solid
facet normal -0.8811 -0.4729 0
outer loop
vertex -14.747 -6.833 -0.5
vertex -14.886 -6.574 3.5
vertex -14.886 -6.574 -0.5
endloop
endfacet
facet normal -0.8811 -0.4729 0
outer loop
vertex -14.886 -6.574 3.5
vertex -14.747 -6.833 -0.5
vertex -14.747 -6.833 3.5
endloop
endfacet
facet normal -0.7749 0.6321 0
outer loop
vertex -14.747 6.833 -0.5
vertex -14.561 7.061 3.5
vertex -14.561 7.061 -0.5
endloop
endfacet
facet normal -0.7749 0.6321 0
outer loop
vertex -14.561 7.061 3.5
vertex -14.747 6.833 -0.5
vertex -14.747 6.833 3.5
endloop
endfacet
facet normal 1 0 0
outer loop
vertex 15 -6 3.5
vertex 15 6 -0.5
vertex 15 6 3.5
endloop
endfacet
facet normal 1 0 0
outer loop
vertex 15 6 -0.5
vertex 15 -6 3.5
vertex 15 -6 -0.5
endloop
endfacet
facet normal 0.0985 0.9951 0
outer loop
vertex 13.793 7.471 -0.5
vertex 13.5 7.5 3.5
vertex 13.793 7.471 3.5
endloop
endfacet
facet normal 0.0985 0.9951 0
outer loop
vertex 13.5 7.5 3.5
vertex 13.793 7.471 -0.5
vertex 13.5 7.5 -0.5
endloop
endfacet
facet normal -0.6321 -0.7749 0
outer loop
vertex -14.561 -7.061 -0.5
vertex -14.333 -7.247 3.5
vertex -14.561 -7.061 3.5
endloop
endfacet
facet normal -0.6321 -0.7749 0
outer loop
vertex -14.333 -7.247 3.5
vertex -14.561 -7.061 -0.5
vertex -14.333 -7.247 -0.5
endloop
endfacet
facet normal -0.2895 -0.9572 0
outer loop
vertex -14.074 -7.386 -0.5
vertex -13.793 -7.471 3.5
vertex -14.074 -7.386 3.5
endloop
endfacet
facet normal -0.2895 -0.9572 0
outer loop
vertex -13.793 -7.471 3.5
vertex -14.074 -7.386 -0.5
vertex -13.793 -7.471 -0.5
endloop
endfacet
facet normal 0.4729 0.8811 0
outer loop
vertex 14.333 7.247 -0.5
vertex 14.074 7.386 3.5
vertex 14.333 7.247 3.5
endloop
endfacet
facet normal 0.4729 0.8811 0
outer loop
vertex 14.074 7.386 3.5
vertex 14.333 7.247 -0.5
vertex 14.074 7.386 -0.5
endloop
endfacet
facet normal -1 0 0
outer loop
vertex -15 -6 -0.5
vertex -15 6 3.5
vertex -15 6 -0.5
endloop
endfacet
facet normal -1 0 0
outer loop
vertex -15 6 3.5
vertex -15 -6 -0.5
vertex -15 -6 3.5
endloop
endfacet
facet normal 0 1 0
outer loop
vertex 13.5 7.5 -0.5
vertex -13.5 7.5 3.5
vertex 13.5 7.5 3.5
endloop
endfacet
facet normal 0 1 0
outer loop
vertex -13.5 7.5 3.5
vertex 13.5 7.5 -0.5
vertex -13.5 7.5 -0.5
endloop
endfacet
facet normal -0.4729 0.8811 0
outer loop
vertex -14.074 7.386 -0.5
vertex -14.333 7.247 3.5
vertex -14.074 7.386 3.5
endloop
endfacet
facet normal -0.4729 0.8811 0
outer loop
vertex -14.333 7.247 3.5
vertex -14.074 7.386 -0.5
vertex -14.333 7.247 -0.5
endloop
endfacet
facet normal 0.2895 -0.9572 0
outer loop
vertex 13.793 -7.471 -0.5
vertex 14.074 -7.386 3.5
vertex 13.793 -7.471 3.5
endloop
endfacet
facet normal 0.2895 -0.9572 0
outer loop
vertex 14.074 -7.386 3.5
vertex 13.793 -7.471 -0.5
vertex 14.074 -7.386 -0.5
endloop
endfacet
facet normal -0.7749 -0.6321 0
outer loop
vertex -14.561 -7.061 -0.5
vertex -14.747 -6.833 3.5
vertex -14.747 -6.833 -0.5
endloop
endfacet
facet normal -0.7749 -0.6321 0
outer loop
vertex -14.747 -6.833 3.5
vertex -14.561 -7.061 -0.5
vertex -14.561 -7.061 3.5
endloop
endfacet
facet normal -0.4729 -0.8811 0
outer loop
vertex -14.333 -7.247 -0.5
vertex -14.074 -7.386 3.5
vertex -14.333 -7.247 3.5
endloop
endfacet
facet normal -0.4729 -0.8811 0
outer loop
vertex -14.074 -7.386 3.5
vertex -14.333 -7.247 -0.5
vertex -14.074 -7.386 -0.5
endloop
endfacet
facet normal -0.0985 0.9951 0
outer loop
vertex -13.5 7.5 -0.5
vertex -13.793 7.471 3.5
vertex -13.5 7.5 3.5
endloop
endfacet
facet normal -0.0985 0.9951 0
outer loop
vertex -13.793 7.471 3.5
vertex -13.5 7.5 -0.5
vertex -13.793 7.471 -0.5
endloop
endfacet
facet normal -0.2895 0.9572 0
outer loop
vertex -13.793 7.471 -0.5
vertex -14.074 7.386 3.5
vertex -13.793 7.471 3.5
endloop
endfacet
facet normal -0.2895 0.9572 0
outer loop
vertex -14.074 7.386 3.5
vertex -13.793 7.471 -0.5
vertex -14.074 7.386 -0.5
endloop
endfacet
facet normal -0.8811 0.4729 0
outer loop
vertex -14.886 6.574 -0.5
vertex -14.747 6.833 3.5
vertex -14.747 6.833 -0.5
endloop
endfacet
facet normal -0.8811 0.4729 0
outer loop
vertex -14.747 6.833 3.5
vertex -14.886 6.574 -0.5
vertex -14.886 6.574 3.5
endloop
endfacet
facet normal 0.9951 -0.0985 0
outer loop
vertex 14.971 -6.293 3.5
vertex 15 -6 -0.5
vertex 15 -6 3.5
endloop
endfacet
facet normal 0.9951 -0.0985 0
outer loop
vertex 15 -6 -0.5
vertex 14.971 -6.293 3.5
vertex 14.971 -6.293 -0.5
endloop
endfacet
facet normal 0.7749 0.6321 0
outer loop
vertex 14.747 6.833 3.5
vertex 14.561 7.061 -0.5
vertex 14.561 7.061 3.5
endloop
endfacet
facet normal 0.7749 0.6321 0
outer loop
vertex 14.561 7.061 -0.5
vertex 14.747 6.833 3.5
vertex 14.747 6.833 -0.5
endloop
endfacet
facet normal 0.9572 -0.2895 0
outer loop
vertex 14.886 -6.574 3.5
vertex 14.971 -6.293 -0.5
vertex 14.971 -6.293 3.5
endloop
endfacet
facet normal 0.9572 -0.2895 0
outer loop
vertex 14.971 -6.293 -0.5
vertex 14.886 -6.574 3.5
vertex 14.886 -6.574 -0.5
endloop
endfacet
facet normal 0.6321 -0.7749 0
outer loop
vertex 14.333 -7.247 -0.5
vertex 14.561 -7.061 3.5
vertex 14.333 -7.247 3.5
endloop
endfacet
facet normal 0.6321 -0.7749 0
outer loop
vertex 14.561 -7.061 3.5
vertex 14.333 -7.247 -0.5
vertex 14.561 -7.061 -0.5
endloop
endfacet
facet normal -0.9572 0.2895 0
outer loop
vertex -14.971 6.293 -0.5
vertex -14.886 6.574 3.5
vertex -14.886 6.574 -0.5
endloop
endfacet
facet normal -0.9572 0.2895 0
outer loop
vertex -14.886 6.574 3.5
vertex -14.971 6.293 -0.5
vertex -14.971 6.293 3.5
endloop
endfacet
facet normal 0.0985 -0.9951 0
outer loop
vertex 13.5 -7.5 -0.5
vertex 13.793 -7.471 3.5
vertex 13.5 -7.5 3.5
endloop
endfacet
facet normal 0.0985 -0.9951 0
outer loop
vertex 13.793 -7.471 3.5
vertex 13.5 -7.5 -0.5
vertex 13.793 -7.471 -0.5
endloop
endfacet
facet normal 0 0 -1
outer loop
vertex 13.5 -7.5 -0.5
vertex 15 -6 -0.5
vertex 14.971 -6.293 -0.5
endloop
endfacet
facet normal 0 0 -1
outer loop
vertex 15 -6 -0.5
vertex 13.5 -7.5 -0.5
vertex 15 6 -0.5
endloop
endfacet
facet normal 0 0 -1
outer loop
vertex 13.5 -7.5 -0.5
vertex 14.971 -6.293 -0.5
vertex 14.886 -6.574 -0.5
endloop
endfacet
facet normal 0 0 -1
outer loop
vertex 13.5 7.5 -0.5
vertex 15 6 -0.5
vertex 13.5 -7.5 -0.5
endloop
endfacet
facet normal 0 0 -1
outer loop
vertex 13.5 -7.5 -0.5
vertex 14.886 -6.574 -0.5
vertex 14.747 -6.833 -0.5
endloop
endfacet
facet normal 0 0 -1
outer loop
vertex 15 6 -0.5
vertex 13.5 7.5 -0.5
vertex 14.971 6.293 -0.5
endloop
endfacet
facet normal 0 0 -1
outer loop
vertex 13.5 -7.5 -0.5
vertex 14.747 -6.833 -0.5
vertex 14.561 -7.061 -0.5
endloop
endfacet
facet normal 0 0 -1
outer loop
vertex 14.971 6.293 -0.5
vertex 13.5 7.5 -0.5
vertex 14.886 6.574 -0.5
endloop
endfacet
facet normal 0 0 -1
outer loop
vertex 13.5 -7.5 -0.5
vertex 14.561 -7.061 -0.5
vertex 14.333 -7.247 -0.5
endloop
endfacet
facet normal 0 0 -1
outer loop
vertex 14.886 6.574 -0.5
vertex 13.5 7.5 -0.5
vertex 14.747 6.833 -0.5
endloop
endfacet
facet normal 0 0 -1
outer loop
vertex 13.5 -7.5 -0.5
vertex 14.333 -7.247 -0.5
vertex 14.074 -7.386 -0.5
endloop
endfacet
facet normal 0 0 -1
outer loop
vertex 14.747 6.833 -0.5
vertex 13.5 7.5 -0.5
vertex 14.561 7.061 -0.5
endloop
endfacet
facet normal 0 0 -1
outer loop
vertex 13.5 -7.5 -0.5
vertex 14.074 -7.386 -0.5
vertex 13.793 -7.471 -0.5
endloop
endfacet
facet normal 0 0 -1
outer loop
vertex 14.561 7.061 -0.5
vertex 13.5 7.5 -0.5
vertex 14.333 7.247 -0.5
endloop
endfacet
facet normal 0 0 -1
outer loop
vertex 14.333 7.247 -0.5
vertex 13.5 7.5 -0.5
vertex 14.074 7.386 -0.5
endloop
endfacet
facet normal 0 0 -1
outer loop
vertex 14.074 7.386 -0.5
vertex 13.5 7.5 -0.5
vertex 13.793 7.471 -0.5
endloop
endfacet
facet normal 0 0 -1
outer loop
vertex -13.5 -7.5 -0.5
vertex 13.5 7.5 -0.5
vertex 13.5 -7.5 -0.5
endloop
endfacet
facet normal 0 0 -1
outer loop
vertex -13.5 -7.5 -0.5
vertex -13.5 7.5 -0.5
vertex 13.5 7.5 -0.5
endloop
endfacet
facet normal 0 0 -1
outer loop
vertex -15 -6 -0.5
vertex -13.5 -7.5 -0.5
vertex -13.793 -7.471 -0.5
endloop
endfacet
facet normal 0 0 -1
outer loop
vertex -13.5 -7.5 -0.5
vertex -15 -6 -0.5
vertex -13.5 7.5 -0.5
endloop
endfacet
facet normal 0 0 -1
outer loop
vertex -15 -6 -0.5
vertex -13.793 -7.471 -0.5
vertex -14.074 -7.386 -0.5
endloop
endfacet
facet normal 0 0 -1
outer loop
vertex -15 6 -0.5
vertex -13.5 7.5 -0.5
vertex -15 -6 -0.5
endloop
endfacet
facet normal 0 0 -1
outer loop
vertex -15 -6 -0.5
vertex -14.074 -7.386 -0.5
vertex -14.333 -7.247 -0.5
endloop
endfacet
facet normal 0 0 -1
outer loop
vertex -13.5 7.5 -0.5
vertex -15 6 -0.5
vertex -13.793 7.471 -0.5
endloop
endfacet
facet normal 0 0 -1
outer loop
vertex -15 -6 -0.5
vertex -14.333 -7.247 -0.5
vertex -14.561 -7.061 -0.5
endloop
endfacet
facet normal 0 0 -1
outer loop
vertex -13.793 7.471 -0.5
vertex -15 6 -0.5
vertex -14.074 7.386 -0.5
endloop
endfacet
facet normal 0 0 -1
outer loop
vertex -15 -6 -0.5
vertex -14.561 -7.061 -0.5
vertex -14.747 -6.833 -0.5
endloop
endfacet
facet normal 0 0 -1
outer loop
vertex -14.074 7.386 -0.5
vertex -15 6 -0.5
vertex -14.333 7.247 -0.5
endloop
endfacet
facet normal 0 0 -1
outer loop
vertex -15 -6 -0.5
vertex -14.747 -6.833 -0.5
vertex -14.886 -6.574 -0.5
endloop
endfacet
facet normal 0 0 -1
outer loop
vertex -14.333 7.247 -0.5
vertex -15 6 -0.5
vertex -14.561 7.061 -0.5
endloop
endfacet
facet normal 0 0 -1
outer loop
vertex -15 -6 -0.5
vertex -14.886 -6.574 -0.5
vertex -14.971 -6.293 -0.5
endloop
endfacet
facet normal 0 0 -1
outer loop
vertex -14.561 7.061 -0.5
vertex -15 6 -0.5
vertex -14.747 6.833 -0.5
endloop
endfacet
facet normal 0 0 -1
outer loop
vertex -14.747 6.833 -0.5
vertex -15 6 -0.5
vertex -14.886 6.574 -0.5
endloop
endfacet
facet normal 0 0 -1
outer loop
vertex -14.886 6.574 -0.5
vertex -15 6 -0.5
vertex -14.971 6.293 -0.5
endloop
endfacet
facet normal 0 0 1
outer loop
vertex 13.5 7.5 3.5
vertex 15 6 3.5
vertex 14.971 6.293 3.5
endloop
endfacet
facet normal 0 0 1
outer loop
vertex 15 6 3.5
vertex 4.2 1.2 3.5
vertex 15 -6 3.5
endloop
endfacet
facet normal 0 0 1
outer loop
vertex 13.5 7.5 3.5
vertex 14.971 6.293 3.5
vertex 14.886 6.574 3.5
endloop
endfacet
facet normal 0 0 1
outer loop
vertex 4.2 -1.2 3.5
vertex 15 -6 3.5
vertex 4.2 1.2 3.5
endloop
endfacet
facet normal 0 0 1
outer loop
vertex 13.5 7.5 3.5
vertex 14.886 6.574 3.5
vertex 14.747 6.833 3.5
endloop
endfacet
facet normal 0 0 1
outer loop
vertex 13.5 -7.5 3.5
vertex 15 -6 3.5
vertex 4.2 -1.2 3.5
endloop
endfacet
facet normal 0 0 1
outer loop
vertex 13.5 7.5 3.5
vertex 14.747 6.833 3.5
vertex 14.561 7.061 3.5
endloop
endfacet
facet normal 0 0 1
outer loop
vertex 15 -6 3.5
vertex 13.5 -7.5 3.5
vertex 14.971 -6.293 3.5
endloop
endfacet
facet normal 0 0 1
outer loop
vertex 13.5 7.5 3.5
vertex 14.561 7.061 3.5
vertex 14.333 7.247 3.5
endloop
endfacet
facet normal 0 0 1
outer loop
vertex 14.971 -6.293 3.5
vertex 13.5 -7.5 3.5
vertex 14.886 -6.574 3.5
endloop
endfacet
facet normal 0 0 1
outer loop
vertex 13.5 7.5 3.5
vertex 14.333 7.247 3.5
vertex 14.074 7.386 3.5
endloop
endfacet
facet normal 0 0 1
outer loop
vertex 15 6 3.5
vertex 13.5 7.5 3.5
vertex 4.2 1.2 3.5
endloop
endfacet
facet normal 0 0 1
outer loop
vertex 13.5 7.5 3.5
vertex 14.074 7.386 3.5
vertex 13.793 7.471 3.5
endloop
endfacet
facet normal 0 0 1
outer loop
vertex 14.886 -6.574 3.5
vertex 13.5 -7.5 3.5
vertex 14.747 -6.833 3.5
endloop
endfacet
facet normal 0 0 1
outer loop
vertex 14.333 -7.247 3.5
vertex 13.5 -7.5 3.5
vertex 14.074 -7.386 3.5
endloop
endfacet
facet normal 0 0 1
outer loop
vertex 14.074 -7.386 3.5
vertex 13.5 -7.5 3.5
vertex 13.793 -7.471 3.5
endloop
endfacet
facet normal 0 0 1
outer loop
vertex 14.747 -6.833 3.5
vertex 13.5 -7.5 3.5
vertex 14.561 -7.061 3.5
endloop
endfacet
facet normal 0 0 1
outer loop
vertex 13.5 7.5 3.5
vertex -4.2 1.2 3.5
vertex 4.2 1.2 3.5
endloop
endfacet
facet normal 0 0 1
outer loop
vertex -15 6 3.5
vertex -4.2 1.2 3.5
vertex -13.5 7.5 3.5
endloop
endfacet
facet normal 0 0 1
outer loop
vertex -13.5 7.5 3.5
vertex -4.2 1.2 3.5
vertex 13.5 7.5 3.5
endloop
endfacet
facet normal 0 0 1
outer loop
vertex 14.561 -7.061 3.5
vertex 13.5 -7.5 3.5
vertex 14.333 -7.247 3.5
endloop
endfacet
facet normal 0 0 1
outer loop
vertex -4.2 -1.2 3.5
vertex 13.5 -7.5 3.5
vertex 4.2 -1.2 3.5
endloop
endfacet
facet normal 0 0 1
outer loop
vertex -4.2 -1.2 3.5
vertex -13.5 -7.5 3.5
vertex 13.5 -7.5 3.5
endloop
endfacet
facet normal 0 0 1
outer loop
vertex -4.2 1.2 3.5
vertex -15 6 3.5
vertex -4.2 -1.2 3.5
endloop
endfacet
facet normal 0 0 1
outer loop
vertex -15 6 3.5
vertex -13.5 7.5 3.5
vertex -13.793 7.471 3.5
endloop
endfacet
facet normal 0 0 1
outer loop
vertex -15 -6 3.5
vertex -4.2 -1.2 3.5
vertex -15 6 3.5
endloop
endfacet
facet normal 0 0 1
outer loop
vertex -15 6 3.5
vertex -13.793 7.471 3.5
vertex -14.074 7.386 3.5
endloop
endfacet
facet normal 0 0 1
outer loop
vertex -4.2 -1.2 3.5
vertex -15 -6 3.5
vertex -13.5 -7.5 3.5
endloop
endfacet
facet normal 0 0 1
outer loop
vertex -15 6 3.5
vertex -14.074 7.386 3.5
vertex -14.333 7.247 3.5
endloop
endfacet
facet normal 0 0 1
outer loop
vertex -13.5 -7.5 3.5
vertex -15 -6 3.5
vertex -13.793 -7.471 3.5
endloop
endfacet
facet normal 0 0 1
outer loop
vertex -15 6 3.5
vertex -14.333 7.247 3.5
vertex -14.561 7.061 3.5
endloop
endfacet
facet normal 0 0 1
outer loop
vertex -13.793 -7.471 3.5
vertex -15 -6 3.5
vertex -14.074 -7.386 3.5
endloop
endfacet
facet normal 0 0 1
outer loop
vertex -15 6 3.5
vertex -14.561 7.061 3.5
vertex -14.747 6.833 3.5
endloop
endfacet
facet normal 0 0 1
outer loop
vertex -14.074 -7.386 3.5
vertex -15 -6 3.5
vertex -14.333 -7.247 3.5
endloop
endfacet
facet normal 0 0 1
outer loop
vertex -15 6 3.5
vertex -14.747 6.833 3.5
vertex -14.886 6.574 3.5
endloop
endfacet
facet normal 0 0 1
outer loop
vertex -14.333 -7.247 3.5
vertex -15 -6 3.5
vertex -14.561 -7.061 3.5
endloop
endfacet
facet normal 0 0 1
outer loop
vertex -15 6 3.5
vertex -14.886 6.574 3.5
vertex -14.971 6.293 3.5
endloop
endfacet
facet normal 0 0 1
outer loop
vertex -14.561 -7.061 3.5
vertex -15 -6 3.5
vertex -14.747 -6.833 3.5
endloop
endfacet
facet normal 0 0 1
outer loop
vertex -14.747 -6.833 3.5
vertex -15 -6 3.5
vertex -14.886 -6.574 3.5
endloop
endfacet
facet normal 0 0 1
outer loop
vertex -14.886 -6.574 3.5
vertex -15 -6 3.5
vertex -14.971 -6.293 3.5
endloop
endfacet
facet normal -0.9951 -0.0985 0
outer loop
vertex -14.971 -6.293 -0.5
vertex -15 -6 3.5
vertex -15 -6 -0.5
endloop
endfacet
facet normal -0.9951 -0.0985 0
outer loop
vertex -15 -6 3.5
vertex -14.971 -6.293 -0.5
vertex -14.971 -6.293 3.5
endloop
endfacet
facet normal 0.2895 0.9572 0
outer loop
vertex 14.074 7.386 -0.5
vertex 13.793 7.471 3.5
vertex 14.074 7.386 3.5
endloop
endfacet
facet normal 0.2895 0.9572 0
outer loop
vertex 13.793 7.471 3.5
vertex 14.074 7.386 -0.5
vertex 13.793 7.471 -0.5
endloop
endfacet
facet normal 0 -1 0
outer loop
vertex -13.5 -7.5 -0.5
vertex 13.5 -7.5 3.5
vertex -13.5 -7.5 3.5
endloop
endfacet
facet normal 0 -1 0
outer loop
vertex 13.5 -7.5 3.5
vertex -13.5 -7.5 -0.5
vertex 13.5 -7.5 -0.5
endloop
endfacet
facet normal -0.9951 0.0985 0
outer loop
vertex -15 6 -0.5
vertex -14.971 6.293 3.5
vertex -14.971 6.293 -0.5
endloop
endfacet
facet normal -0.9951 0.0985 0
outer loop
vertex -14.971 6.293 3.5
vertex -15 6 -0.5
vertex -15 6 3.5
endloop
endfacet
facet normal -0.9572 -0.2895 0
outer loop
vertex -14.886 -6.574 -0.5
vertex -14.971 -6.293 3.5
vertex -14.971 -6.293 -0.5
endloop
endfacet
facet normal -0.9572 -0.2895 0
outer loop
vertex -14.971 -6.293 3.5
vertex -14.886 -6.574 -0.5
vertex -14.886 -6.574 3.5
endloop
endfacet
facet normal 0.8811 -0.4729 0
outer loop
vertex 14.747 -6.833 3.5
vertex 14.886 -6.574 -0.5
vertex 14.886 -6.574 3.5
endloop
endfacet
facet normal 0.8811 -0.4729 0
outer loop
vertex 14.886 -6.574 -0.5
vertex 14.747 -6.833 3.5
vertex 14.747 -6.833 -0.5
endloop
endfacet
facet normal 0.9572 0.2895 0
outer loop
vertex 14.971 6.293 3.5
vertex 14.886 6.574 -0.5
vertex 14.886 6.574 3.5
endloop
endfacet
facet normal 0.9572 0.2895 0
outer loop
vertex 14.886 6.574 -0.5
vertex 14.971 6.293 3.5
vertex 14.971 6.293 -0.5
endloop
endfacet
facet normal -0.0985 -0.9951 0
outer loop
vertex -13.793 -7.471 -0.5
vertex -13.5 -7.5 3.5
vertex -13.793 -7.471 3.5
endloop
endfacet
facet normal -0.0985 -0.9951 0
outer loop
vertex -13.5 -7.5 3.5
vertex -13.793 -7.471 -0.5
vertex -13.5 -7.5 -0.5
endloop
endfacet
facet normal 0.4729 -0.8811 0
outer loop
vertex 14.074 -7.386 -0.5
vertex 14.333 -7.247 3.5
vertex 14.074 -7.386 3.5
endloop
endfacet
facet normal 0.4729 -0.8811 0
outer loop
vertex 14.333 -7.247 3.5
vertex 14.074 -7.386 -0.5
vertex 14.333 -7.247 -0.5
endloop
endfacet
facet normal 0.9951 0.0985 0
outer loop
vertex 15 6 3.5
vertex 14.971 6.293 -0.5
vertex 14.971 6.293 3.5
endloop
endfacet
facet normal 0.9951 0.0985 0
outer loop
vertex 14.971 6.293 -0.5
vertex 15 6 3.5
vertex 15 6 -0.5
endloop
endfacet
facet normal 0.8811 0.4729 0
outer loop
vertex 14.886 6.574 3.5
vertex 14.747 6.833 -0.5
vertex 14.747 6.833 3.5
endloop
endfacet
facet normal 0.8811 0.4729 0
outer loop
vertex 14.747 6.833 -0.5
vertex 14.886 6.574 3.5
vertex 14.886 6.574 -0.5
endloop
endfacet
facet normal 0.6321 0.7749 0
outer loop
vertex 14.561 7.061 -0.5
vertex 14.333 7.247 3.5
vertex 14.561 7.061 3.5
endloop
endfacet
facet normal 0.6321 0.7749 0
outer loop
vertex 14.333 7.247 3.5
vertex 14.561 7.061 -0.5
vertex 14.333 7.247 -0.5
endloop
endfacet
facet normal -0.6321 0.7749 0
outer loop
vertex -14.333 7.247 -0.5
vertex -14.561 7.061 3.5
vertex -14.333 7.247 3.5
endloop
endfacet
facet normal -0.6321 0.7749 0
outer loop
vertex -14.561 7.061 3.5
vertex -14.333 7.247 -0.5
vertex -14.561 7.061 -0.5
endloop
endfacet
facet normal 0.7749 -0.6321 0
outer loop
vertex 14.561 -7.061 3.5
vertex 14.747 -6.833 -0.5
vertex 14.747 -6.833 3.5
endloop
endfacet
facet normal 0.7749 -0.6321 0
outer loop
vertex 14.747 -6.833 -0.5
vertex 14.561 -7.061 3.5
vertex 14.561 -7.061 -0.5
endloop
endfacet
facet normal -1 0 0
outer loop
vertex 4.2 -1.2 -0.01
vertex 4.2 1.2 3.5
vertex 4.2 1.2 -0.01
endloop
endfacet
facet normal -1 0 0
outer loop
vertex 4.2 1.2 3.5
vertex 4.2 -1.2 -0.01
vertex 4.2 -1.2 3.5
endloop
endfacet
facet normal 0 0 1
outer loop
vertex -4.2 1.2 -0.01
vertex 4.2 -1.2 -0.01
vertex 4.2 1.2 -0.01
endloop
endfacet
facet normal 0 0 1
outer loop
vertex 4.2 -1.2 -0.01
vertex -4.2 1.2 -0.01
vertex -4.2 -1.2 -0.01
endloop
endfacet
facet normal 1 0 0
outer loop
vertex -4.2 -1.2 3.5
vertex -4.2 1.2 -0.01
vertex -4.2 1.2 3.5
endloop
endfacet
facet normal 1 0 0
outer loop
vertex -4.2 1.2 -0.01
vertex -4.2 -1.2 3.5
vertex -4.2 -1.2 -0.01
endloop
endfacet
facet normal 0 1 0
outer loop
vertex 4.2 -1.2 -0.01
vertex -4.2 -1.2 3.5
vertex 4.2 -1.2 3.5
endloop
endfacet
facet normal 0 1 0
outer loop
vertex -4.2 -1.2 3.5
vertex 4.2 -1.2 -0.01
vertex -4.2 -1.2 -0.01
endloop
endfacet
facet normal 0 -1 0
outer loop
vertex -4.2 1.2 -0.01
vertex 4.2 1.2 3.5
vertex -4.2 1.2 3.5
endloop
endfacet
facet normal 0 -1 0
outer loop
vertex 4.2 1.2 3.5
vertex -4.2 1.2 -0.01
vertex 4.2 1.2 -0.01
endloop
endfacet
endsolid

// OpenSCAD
// file: standee_lib.scad
// standee_lib.scad — shared modules for standee + base
//
// All model dimensions are passed as named arguments to standee() and base()
// with sensible defaults. SVG dimensions (svg_width, svg_height) are
// auto-filled by trace_to_svg.py when generating the per-shape .scad files.

// --- Default dimensions ---

// Shape (standee body)
DEFAULT_SHAPE_WIDTH     = 40;     // mm — physical width of the shape
DEFAULT_THICKNESS       = 2;      // mm — extrusion thickness (shape & leg)

// Leg (peg under the shape)
DEFAULT_LEG_WIDTH       = 8;      // mm — width of the leg (4× thickness)
DEFAULT_LEG_HEIGHT      = 60;     // mm — total length of the leg
DEFAULT_LEG_OVERLAP     = 3;      // mm — how far the leg extends into the shape
DEFAULT_LEG_TOLERANCE   = 0.2;    // mm — push-fit gap per side

// Base
DEFAULT_BASE_WIDTH      = 30;     // mm — X dimension
DEFAULT_BASE_DEPTH      = 15;     // mm — Y dimension
DEFAULT_BASE_HEIGHT     = 4;      // mm — Z dimension
DEFAULT_BASE_FILLET     = 1.5;    // mm — corner rounding


// --- Modules ---

// Standee: extrude a 2D SVG shape (passed as child) + leg as a single piece.
//
//   svg_width, svg_height: source SVG dimensions in px (auto-filled by tracer)
//   width:        physical width of the shape in mm (height auto-scales)
//   thickness:    extrusion thickness — shared by shape and leg
//   leg_width:    width of the leg
//   leg_height:   total length of the leg
//   leg_overlap:  how far the top of the leg extends into the shape
module standee(svg_width, svg_height,
               shape_width   = DEFAULT_SHAPE_WIDTH,
               shape_thick   = DEFAULT_THICKNESS,
               s_leg_width   = DEFAULT_LEG_WIDTH,
               s_leg_height  = DEFAULT_LEG_HEIGHT,
               s_leg_overlap = DEFAULT_LEG_OVERLAP) {

    sf = shape_width / svg_width;
    sh = svg_height * sf;
    sb = -sh / 2;

    lt = sb + s_leg_overlap;
    lb = lt - s_leg_height;

    linear_extrude(height = shape_thick)
        union() {
            scale([sf, sf])
                children();
            translate([-s_leg_width/2, lb])
                square([s_leg_width, s_leg_height]);
        }
}

// Base: rounded rectangular plate with a slot matching the leg cross-section.
// Printed upside down (slot opens upward) to avoid bridging on the print bed.
//
//   base_width, base_depth, base_height: base dimensions in mm
//   leg_width, leg_thickness:            leg cross-section (must match standee)
//   tolerance:                           push-fit gap per side
//   fillet:                              corner radius
module base(base_width    = DEFAULT_BASE_WIDTH,
            base_depth    = DEFAULT_BASE_DEPTH,
            base_height   = DEFAULT_BASE_HEIGHT,
            leg_width     = DEFAULT_LEG_WIDTH,
            leg_thickness = DEFAULT_THICKNESS,
            tolerance     = DEFAULT_LEG_TOLERANCE,
            fillet        = DEFAULT_BASE_FILLET) {

    slot_w = leg_width     + 2 * tolerance;
    slot_d = leg_thickness + 2 * tolerance;

    translate([0, 0, base_height])
    rotate([180, 0, 0])
    difference() {
        // Rounded base block
        translate([0, 0, base_height/2])
            minkowski() {
                cube([base_width - 2*fillet,
                      base_depth - 2*fillet,
                      base_height - 1], center = true);
                cylinder(r = fillet, h = 1, $fn = 32);
            }
        // Slot — goes all the way through the base
        translate([-slot_w/2, -slot_d/2, -0.01])
            cube([slot_w, slot_d, base_height + 0.02]);
    }
}
// main file
// Standalone base piece — print separately, push-fit with any standee
use <standee_lib.scad>;

base();
